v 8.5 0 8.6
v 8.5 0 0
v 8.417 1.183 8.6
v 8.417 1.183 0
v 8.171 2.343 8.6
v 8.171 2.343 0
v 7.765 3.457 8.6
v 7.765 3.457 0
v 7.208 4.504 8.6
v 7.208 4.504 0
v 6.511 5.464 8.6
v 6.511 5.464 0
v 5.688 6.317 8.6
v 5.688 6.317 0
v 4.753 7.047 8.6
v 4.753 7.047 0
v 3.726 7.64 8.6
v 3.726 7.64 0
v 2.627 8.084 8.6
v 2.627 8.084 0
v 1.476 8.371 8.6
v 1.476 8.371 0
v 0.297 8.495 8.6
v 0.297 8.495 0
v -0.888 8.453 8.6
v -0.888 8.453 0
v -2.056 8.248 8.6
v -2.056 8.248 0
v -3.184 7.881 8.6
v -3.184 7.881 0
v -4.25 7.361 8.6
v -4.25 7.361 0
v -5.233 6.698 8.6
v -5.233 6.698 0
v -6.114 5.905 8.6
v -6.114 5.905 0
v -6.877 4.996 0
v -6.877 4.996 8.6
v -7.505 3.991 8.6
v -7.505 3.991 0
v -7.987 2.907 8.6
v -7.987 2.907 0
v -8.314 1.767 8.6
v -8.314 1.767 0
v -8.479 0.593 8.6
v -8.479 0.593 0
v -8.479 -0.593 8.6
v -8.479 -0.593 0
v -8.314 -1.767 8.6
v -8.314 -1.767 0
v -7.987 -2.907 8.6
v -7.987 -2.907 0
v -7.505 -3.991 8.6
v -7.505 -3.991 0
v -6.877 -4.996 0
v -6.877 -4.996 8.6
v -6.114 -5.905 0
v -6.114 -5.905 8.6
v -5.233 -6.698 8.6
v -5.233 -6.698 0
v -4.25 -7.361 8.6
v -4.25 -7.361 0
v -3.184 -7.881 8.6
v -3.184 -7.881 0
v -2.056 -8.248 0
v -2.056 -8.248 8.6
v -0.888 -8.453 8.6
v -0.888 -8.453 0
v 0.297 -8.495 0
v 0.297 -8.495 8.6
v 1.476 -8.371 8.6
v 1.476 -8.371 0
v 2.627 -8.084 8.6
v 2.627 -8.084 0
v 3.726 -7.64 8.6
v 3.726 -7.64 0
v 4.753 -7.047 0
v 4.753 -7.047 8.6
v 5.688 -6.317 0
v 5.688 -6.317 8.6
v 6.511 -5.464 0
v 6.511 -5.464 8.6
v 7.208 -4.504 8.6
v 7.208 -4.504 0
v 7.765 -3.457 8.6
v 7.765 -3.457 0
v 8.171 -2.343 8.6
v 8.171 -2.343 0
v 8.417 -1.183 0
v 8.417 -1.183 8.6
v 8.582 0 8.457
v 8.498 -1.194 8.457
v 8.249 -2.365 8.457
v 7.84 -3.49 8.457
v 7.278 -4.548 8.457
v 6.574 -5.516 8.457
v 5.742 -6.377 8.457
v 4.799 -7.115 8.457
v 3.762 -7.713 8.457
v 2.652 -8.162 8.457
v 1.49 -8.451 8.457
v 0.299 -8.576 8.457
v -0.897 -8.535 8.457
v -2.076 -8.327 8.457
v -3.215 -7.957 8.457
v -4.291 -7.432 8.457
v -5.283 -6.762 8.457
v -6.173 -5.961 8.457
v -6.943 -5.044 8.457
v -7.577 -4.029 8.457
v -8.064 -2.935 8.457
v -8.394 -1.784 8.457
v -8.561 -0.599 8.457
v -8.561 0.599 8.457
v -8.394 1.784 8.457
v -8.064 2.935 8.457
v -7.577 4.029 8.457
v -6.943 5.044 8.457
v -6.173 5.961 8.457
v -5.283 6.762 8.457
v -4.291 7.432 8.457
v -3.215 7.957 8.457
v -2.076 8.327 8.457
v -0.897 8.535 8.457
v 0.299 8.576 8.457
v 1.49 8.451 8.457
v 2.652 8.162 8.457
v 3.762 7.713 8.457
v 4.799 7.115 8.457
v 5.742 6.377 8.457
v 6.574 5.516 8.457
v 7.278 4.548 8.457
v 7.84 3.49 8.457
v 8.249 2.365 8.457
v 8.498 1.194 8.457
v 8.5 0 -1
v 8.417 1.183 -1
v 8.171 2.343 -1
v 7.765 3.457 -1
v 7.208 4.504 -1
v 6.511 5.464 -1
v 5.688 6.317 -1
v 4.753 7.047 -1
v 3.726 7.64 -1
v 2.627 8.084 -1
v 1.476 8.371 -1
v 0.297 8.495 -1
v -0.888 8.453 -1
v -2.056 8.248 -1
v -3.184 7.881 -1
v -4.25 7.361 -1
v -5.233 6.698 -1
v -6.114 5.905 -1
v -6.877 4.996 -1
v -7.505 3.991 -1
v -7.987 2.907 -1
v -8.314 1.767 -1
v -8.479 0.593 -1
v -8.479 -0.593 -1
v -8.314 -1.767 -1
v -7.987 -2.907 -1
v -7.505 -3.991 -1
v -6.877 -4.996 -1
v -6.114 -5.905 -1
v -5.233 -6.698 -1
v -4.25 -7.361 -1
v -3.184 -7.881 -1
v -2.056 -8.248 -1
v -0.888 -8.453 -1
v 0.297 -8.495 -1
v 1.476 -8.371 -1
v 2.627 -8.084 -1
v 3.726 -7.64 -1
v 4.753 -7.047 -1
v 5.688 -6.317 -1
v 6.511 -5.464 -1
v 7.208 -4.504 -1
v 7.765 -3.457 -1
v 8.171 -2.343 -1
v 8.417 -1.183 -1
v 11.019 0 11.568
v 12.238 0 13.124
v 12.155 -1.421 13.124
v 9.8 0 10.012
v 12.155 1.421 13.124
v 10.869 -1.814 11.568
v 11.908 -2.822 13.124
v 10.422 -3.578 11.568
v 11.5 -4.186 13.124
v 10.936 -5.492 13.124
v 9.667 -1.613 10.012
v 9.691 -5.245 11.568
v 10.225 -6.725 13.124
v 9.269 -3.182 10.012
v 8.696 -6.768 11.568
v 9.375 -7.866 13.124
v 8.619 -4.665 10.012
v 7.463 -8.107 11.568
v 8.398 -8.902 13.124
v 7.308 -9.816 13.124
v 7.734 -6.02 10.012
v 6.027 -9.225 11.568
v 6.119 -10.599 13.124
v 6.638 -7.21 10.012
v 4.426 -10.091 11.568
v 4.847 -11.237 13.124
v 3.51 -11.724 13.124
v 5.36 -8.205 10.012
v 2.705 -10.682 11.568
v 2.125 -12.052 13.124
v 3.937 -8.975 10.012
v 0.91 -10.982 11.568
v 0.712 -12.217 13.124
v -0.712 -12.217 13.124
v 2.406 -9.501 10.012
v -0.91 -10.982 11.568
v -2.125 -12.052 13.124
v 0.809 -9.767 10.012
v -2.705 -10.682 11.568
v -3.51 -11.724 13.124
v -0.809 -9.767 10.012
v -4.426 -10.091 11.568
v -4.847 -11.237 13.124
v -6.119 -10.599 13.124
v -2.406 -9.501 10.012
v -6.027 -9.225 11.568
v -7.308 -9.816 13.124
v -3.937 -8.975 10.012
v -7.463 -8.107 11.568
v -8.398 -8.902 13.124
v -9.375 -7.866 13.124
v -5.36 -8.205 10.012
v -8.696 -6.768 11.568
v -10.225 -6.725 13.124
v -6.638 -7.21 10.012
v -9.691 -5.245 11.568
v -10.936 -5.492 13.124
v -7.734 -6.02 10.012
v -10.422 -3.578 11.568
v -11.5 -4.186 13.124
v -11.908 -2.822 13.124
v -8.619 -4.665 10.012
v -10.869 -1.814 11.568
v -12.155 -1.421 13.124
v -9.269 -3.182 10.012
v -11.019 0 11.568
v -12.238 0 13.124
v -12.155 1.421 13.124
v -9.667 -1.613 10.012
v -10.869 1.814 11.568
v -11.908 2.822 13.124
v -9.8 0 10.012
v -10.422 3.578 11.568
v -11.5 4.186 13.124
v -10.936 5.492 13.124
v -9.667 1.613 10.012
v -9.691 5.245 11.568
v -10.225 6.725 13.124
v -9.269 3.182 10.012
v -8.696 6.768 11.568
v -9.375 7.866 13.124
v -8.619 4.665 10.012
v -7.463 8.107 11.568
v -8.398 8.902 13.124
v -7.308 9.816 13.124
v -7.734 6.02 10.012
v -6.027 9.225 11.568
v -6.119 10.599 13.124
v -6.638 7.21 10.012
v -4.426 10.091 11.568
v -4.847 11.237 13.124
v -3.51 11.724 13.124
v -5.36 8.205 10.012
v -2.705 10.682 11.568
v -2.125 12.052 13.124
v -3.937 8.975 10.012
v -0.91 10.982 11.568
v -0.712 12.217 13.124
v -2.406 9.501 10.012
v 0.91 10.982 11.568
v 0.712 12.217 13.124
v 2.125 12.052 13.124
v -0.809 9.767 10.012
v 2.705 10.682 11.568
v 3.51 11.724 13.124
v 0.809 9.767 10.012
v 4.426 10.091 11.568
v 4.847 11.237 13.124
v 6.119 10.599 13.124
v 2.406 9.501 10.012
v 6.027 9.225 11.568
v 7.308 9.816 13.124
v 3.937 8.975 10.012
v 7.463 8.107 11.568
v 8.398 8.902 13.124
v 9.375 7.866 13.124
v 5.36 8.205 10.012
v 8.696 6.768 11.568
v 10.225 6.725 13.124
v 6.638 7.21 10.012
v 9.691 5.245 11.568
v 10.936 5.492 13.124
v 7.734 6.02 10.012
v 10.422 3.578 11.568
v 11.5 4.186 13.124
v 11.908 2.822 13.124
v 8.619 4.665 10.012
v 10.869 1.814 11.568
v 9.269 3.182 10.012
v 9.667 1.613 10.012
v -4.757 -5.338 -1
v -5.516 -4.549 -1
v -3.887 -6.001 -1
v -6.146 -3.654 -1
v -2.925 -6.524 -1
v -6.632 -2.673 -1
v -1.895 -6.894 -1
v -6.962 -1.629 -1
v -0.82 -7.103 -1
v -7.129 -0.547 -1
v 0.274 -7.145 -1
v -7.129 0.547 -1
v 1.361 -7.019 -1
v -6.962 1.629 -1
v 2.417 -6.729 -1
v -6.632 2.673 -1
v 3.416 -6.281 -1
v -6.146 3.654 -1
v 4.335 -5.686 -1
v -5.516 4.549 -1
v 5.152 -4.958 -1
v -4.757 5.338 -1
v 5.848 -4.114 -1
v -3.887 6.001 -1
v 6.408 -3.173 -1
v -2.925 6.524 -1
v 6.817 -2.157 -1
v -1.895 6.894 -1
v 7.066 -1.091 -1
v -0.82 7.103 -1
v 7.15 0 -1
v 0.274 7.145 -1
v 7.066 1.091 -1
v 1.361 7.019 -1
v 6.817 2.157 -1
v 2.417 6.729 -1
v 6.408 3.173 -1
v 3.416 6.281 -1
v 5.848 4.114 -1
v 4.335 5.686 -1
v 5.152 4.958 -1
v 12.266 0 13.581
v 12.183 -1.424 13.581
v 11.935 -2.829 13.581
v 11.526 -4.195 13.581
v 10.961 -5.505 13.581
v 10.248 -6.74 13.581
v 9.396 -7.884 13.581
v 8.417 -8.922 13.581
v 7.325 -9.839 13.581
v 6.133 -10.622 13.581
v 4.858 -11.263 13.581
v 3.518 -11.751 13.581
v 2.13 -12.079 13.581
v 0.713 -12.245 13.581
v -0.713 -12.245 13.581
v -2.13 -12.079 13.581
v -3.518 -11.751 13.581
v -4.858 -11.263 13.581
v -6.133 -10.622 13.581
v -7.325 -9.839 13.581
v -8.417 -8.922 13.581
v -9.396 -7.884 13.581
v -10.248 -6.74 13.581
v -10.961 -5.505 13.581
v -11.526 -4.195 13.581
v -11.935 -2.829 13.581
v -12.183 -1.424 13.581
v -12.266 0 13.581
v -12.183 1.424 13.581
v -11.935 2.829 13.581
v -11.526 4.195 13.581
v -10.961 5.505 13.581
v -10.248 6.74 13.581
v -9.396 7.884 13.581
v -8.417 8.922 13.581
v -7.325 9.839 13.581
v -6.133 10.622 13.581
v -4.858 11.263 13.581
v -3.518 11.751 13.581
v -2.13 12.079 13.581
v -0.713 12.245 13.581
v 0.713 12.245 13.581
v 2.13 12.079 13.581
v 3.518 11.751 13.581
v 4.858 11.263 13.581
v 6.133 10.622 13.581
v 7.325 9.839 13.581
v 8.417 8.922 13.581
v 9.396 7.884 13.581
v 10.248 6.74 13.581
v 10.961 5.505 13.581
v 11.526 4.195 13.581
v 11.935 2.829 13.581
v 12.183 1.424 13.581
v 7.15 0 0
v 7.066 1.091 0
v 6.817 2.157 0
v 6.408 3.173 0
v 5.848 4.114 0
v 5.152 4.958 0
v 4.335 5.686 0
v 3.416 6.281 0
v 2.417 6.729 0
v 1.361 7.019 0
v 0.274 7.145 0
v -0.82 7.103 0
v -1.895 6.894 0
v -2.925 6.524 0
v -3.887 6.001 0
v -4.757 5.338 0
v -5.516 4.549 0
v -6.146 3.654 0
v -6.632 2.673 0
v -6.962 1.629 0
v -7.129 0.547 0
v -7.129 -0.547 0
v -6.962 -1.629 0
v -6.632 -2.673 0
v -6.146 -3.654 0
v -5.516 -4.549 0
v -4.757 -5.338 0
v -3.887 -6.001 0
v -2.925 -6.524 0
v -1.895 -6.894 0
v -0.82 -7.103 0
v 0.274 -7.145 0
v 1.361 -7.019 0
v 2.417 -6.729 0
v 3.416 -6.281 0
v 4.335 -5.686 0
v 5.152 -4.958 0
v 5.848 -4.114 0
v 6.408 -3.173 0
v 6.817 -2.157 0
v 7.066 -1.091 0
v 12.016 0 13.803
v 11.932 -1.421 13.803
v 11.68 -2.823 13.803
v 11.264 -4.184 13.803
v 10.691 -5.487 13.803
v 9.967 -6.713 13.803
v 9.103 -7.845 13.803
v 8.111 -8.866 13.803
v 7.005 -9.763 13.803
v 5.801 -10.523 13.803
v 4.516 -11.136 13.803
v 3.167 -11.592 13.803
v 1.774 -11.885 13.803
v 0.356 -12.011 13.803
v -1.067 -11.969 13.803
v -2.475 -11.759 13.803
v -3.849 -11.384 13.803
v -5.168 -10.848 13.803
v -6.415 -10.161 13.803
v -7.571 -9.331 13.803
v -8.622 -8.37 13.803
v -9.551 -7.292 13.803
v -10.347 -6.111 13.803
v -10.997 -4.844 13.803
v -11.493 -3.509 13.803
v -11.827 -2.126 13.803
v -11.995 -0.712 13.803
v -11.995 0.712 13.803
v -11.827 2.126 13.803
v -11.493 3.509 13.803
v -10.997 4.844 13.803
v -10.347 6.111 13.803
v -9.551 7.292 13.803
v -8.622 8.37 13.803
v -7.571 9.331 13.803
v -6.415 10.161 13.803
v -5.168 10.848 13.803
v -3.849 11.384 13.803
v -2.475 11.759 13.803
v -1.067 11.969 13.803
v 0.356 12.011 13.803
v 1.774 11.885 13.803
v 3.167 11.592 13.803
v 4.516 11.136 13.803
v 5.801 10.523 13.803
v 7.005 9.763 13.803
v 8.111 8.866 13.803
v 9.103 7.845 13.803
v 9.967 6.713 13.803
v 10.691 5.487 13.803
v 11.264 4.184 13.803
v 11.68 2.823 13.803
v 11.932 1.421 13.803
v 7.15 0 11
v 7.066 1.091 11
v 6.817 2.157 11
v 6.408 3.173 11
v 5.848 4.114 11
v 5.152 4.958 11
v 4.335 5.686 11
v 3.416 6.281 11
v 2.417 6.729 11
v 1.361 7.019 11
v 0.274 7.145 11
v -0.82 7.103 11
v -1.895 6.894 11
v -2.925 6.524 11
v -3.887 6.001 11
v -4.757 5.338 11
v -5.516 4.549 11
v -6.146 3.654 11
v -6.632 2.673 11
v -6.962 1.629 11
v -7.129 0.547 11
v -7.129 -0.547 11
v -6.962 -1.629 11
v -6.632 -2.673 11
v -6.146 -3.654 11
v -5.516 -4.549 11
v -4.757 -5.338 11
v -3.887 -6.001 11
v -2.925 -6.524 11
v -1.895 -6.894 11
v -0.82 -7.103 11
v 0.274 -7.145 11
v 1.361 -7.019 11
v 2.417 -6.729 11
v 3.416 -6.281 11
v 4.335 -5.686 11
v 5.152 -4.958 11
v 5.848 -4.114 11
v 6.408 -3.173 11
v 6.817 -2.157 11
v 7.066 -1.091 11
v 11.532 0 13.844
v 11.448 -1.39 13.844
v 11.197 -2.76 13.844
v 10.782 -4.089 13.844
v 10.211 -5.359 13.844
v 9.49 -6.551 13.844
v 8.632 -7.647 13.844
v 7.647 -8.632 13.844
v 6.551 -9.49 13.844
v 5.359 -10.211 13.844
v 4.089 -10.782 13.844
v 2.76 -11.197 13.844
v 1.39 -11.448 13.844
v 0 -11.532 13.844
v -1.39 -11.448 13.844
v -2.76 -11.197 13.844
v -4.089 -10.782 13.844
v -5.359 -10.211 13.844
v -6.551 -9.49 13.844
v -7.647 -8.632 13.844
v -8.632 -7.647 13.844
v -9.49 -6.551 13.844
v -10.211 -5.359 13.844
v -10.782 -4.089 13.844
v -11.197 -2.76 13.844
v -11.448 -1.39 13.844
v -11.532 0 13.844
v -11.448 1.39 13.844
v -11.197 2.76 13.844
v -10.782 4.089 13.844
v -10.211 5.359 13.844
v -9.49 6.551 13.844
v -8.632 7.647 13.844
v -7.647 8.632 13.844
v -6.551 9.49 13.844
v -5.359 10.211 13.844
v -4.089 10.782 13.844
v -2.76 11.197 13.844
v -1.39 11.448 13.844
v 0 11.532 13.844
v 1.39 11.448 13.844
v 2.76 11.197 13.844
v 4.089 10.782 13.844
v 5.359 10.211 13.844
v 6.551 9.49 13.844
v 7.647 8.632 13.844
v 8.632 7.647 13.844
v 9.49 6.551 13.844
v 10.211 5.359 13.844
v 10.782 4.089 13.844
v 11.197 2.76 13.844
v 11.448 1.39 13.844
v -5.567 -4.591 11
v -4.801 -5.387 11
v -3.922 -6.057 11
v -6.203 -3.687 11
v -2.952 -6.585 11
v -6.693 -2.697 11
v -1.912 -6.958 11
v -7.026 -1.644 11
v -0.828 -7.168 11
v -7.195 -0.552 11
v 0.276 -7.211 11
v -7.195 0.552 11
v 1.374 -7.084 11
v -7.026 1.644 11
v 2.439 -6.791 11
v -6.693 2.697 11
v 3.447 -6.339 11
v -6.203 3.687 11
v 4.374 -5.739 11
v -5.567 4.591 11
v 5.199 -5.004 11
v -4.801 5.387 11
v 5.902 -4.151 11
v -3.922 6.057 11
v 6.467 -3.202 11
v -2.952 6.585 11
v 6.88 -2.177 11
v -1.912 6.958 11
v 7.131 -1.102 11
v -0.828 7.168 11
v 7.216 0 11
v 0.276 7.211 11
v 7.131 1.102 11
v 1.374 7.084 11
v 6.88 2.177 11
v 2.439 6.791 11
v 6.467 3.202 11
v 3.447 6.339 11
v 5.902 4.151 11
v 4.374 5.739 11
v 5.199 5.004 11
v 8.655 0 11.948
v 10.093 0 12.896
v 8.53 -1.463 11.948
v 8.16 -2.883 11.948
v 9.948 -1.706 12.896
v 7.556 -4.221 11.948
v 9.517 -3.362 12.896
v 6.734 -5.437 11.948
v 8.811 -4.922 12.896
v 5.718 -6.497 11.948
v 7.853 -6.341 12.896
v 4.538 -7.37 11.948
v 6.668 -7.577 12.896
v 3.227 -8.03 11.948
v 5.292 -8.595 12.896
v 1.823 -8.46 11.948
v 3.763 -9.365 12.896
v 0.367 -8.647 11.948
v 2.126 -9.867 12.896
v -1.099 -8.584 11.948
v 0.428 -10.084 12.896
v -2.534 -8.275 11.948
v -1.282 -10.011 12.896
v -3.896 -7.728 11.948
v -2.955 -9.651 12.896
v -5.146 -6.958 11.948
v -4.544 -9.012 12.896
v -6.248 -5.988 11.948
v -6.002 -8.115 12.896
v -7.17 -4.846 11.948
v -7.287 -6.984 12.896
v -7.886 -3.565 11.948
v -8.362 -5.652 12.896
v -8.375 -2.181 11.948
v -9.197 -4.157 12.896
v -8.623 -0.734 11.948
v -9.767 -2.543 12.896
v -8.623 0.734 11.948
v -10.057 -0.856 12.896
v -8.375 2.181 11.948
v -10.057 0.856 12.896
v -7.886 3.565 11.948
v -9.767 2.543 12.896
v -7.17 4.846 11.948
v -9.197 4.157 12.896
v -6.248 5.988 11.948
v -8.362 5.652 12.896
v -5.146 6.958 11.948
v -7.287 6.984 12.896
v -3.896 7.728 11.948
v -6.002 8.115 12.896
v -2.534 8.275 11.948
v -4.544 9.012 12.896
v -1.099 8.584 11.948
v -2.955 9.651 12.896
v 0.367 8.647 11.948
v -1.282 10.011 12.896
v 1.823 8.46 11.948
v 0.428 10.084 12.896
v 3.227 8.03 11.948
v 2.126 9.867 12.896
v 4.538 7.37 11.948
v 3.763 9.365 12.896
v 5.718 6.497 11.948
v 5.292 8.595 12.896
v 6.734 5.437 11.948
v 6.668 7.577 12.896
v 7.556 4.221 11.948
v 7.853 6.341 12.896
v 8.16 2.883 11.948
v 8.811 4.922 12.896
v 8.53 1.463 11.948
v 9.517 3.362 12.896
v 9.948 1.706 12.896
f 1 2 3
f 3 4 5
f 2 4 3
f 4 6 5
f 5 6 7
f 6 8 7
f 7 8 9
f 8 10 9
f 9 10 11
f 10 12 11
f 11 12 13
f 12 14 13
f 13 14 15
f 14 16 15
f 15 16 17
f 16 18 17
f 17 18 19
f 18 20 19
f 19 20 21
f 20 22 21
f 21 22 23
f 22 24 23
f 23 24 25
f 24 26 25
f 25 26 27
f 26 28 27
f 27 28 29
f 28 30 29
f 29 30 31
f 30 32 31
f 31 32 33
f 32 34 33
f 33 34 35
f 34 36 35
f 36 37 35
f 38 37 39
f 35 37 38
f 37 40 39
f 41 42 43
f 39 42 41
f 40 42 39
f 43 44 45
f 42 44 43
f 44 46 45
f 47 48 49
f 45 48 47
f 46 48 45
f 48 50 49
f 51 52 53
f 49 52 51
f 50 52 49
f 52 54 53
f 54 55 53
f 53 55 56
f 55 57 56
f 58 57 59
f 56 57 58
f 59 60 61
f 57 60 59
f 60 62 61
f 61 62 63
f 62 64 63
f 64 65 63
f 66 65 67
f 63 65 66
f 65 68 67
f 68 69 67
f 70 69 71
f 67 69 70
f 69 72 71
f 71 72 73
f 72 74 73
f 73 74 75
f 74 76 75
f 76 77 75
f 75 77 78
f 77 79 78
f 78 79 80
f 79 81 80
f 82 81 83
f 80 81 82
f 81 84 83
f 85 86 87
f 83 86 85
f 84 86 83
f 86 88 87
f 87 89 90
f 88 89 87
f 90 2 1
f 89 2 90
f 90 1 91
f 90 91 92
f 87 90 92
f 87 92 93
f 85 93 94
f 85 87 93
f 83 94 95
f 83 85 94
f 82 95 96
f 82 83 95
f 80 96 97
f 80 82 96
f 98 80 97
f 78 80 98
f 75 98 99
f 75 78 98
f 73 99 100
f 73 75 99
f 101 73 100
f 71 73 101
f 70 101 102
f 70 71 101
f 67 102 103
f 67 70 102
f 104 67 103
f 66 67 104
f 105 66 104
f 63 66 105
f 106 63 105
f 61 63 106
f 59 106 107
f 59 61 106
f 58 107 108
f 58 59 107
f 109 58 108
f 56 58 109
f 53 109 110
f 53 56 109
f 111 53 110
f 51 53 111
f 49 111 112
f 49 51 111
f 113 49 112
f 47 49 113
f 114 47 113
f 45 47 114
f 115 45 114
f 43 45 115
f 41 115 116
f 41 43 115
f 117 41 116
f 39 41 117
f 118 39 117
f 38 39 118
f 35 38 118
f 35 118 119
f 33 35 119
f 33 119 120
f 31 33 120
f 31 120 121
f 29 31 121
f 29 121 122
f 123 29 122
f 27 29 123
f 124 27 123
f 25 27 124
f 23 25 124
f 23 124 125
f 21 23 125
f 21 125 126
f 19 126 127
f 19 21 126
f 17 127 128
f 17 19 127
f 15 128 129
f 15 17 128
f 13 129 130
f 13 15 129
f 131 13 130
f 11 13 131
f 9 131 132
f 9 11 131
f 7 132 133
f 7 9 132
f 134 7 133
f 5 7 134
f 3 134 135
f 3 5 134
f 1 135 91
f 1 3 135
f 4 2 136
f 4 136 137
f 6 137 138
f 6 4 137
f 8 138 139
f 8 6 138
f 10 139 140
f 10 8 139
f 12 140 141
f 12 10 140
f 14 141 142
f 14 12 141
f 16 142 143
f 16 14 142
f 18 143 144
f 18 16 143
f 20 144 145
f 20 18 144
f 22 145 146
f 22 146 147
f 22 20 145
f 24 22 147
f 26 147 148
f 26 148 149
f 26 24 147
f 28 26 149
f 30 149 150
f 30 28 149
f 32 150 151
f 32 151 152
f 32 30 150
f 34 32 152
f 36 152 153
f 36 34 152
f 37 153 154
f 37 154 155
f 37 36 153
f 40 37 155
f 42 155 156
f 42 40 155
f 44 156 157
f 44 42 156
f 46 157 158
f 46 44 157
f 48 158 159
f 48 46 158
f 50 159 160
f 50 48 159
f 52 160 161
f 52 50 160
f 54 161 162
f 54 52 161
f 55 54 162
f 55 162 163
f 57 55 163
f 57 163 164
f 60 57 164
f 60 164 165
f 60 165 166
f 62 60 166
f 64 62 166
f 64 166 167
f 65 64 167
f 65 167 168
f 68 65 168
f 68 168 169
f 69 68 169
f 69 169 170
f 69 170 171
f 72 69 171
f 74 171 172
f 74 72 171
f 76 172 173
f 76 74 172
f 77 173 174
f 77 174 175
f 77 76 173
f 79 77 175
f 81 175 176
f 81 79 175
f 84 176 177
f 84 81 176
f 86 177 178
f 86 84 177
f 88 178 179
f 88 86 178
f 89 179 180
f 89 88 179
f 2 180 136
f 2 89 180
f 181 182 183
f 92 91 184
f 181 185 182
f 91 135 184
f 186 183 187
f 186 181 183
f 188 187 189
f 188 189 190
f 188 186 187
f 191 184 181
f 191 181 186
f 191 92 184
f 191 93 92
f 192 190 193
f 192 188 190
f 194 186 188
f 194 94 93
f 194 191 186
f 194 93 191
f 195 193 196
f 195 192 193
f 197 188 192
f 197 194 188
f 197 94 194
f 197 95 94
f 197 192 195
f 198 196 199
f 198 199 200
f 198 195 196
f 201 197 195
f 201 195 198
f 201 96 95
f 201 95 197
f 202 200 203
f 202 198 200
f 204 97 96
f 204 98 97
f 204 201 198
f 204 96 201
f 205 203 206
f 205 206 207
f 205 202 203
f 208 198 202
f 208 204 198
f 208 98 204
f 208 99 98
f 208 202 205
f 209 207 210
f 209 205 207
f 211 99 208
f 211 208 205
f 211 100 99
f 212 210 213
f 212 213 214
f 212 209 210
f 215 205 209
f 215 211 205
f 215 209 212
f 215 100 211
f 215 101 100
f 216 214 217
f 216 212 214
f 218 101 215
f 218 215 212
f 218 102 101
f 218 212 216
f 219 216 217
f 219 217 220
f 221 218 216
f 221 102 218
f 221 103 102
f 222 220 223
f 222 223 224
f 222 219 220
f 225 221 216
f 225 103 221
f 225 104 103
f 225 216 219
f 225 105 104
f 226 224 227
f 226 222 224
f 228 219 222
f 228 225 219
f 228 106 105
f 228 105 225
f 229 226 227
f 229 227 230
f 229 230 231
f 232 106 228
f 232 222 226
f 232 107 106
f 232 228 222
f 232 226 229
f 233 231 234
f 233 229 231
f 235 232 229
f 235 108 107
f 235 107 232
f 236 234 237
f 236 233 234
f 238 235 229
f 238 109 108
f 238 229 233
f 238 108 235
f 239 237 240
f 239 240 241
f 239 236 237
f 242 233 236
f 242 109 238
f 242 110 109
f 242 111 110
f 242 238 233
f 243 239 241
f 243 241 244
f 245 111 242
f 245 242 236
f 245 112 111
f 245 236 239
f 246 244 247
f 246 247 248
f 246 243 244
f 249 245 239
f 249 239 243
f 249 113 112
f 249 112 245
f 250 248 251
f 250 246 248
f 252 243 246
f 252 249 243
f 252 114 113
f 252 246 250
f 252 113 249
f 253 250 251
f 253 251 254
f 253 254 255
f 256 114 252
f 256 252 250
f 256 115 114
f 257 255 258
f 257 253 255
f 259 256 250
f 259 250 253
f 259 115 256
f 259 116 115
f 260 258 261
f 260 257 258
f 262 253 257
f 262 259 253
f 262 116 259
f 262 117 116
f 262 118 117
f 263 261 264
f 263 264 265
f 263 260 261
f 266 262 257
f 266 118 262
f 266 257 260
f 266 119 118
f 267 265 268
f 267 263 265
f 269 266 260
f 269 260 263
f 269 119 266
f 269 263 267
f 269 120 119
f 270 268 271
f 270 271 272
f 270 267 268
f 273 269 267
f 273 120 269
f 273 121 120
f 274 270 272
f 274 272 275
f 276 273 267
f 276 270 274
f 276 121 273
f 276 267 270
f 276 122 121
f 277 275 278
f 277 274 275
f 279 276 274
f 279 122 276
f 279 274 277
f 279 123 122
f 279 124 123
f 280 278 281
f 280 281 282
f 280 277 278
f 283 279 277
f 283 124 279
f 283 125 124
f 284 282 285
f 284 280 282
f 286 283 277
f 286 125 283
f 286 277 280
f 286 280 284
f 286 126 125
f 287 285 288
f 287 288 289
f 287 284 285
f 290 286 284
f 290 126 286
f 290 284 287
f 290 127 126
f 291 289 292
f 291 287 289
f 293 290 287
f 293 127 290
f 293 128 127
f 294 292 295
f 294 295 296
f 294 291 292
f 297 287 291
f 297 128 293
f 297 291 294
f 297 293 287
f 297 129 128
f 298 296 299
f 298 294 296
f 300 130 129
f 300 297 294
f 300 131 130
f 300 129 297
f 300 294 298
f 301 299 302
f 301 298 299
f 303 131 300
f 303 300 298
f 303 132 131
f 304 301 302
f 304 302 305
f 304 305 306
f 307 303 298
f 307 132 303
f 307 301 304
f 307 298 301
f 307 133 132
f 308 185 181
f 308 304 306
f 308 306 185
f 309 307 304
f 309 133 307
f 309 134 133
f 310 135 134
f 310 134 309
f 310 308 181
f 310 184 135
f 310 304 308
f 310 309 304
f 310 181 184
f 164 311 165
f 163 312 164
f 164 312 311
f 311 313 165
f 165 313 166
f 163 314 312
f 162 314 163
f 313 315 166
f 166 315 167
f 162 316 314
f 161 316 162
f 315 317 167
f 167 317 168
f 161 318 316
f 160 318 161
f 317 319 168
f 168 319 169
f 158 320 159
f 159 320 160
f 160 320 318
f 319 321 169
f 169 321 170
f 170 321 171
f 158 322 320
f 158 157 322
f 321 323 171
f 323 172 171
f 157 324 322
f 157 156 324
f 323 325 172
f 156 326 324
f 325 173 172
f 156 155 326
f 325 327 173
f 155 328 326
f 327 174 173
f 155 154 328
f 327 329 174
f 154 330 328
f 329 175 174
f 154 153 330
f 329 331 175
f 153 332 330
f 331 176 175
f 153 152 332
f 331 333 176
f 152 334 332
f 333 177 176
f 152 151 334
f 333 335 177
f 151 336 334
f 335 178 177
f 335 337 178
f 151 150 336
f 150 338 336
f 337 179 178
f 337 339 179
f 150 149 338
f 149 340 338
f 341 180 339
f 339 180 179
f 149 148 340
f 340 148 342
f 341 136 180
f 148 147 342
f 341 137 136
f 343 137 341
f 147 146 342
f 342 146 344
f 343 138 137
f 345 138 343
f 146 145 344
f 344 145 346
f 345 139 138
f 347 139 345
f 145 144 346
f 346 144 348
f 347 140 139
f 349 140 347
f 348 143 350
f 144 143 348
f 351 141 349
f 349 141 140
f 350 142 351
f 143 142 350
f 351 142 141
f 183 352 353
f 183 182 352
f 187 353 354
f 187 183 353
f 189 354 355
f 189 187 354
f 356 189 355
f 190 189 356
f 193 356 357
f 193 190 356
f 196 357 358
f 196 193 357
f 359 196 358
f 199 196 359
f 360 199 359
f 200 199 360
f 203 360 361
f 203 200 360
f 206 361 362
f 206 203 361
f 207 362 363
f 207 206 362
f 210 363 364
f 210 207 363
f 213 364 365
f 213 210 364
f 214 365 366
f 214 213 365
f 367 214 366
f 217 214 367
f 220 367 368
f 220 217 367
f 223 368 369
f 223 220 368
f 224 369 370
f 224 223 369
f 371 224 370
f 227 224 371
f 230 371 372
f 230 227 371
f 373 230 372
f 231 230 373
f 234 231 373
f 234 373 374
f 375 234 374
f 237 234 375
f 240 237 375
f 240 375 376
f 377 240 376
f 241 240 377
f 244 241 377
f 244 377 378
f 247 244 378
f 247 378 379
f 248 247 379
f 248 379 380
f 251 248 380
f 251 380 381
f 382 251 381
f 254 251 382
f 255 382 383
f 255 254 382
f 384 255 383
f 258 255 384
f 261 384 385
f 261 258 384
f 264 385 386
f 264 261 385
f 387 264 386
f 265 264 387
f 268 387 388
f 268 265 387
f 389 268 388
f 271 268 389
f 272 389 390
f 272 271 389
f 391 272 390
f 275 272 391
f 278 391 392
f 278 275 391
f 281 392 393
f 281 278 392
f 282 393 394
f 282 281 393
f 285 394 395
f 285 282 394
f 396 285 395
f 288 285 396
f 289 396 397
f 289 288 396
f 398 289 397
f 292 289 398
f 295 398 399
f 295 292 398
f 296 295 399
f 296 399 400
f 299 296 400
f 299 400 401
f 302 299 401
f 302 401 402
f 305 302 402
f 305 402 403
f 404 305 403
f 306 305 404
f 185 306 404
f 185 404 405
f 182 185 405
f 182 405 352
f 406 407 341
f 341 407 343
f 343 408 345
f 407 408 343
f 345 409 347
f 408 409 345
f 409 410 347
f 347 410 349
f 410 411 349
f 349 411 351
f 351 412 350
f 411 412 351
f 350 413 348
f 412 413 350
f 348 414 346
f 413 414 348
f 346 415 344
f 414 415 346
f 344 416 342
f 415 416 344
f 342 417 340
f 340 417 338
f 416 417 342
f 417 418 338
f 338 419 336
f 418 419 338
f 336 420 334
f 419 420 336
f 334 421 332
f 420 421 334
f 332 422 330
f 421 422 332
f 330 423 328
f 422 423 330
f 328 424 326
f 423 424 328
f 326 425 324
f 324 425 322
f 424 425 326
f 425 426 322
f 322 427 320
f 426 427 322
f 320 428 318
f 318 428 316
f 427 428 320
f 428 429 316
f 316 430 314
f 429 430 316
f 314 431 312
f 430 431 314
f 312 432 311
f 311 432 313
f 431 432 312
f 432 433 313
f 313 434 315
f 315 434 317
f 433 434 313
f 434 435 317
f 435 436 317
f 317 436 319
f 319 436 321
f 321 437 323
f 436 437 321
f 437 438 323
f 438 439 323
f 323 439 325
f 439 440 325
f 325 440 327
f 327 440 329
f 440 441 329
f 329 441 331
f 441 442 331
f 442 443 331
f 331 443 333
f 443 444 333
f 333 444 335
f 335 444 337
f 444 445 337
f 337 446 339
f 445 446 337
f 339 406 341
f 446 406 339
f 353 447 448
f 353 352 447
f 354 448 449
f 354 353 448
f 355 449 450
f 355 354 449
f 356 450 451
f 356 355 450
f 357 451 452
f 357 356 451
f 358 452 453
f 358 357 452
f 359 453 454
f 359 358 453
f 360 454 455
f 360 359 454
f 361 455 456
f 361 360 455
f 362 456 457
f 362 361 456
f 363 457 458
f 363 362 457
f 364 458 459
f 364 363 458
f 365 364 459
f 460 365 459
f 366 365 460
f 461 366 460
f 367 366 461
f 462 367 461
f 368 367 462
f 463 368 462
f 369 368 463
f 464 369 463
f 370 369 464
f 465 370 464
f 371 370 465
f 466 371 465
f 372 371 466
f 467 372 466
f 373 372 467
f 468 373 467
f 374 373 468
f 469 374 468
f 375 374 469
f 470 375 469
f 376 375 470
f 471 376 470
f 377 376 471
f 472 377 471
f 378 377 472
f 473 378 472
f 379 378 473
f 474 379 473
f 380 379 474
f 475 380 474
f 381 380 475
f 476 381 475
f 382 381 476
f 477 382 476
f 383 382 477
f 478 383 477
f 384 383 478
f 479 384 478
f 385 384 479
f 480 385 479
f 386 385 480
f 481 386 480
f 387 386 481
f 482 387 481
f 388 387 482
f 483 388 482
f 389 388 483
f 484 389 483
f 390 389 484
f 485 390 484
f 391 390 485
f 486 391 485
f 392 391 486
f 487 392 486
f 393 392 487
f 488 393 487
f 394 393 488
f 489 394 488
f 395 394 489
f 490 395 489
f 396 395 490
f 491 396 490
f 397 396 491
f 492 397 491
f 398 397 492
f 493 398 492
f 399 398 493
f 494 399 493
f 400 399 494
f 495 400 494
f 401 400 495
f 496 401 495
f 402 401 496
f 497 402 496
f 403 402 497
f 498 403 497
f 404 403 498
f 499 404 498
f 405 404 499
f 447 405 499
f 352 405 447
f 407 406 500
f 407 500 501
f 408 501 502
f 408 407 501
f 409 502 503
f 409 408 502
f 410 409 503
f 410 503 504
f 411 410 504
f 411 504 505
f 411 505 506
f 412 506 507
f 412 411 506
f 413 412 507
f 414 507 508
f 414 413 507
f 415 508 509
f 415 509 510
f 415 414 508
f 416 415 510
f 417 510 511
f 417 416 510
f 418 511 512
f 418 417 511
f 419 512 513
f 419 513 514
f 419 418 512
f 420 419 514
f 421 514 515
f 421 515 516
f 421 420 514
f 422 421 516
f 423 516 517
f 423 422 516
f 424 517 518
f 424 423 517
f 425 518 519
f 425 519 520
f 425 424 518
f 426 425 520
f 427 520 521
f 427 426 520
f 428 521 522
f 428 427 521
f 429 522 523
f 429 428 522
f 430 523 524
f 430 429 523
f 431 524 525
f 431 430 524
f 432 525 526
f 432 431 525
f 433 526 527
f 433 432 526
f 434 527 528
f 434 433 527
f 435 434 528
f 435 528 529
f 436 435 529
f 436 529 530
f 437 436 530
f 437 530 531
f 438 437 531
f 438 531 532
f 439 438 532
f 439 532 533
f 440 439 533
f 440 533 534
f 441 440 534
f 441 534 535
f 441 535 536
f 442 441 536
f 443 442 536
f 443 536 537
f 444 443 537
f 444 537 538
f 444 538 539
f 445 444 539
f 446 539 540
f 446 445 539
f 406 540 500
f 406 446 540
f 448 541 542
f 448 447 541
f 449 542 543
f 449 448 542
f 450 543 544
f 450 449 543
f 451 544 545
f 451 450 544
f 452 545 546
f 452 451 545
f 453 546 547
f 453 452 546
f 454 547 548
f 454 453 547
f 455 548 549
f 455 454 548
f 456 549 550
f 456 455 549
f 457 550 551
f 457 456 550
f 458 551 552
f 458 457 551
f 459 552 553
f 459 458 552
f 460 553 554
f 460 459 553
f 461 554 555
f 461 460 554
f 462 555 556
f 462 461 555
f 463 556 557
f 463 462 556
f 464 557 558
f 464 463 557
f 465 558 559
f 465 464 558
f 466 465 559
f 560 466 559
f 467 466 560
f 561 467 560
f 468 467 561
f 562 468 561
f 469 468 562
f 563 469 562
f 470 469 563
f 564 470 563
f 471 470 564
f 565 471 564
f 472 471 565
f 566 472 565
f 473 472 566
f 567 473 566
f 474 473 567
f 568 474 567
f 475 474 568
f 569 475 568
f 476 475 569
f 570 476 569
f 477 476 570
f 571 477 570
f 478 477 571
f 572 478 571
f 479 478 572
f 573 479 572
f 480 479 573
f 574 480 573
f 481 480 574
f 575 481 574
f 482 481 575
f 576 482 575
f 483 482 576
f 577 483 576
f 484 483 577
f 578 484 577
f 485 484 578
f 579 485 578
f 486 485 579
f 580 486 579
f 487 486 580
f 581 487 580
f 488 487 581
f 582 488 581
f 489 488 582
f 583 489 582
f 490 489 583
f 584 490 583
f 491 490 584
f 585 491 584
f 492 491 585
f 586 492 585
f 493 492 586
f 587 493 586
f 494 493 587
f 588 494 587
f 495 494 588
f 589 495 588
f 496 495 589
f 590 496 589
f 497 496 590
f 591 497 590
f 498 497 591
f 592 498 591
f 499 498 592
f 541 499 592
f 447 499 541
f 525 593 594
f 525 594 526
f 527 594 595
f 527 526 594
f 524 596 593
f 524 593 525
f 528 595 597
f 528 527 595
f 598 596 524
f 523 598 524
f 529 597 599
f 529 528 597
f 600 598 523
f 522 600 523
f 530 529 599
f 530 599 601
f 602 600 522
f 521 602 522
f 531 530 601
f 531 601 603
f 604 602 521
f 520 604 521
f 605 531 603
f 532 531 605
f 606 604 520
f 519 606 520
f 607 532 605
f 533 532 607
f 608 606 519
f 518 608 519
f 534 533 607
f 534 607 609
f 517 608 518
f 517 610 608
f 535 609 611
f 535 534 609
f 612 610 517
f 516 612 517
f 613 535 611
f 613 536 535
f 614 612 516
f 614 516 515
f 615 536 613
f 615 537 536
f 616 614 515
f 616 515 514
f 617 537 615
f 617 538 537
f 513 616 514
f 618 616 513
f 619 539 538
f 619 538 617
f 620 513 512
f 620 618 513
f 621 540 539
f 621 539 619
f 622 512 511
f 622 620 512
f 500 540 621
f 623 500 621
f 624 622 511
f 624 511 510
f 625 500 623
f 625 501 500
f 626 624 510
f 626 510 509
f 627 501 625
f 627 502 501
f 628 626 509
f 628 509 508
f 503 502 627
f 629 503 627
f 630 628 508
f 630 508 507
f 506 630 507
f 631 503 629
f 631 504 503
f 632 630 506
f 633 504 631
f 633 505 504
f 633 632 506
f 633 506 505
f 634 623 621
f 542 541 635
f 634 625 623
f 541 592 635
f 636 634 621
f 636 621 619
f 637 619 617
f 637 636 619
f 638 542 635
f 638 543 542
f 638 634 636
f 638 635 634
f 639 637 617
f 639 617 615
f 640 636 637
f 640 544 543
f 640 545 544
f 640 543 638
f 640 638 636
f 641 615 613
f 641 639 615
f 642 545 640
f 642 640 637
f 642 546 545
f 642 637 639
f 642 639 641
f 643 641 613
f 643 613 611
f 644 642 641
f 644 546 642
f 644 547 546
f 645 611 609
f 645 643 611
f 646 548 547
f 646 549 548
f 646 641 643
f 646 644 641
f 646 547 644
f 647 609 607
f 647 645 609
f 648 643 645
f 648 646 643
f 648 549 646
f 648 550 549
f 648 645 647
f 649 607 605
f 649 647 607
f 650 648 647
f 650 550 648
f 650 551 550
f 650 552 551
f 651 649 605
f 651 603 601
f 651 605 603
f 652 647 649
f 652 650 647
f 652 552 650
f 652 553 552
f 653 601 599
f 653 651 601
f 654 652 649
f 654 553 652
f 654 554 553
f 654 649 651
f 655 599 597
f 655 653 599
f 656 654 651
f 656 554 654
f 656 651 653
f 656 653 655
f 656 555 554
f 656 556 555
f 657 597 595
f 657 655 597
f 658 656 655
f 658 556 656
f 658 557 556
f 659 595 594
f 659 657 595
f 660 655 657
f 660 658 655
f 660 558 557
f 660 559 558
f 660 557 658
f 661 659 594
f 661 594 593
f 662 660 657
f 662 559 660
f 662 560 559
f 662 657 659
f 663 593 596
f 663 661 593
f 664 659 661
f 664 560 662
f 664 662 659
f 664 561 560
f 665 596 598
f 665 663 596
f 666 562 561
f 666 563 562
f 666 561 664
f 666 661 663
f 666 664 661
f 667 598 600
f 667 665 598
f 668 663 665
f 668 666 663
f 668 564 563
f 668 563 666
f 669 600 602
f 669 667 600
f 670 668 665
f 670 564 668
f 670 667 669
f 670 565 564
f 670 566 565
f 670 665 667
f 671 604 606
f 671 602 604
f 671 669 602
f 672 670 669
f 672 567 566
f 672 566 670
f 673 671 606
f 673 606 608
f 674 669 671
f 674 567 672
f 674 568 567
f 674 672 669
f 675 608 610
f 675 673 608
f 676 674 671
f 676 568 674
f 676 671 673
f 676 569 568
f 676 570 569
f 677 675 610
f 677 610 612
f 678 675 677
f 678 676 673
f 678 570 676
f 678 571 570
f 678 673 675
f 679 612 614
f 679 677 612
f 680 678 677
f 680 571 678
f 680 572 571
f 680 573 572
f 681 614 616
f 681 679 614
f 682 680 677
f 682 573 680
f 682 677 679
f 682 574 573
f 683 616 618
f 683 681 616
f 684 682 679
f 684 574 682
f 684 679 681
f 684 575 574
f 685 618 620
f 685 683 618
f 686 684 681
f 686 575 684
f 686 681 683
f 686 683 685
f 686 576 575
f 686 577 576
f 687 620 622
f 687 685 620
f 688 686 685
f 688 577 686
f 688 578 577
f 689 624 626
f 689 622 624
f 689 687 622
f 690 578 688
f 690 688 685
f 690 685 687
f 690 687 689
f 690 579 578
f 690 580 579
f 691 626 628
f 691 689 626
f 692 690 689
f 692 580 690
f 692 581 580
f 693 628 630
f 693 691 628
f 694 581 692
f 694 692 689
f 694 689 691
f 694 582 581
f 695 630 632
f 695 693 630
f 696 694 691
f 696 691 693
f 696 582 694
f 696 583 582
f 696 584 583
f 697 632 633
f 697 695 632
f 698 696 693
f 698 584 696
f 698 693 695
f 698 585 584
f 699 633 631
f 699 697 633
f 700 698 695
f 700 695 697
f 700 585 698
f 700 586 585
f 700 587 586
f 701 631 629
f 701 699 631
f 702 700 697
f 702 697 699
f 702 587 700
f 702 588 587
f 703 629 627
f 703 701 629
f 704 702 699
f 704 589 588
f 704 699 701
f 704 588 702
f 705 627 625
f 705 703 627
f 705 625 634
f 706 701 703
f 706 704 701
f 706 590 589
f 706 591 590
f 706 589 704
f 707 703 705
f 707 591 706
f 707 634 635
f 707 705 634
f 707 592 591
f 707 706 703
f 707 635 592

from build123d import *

# Parameters (mm, degrees)
SKETCH_R             = 8.5
SKETCH_R_2           = 7.15
PAD_DEPTH            = 11
REVOLUTION_FACE2_R   = 8.5
REVOLUTION_FACE2_R_2 = 7.15
PAD001_DEPTH         = 1


with BuildPart() as part:
    # Sketch → Pad (new body)
    with BuildSketch(Plane.XY):
        Circle(SKETCH_R)
        Circle(SKETCH_R_2, mode=Mode.SUBTRACT)
    extrude(amount=PAD_DEPTH)

    # Sketch001 → Revolution (revolve)
    with BuildSketch(Plane.XZ):
        Polygon((7.154231, 10.959348), (11.531741, 13.844253), (12.016494, 13.802702), (12.265796, 13.5811), (12.238096, 13.124048), (8.581674, 8.456569), align=None)
    revolve(axis=Axis((0, 0, 0), (0, 0, 1)))

    # Revolution Face2 → Pad001 (add)
    with BuildSketch(Plane(origin=(0, 0, 0), x_dir=(0, -1, 0), z_dir=(0, 0, -1))):
        Circle(REVOLUTION_FACE2_R)
        Circle(REVOLUTION_FACE2_R_2, mode=Mode.SUBTRACT)
    extrude(amount=PAD001_DEPTH)


solid = part.part
